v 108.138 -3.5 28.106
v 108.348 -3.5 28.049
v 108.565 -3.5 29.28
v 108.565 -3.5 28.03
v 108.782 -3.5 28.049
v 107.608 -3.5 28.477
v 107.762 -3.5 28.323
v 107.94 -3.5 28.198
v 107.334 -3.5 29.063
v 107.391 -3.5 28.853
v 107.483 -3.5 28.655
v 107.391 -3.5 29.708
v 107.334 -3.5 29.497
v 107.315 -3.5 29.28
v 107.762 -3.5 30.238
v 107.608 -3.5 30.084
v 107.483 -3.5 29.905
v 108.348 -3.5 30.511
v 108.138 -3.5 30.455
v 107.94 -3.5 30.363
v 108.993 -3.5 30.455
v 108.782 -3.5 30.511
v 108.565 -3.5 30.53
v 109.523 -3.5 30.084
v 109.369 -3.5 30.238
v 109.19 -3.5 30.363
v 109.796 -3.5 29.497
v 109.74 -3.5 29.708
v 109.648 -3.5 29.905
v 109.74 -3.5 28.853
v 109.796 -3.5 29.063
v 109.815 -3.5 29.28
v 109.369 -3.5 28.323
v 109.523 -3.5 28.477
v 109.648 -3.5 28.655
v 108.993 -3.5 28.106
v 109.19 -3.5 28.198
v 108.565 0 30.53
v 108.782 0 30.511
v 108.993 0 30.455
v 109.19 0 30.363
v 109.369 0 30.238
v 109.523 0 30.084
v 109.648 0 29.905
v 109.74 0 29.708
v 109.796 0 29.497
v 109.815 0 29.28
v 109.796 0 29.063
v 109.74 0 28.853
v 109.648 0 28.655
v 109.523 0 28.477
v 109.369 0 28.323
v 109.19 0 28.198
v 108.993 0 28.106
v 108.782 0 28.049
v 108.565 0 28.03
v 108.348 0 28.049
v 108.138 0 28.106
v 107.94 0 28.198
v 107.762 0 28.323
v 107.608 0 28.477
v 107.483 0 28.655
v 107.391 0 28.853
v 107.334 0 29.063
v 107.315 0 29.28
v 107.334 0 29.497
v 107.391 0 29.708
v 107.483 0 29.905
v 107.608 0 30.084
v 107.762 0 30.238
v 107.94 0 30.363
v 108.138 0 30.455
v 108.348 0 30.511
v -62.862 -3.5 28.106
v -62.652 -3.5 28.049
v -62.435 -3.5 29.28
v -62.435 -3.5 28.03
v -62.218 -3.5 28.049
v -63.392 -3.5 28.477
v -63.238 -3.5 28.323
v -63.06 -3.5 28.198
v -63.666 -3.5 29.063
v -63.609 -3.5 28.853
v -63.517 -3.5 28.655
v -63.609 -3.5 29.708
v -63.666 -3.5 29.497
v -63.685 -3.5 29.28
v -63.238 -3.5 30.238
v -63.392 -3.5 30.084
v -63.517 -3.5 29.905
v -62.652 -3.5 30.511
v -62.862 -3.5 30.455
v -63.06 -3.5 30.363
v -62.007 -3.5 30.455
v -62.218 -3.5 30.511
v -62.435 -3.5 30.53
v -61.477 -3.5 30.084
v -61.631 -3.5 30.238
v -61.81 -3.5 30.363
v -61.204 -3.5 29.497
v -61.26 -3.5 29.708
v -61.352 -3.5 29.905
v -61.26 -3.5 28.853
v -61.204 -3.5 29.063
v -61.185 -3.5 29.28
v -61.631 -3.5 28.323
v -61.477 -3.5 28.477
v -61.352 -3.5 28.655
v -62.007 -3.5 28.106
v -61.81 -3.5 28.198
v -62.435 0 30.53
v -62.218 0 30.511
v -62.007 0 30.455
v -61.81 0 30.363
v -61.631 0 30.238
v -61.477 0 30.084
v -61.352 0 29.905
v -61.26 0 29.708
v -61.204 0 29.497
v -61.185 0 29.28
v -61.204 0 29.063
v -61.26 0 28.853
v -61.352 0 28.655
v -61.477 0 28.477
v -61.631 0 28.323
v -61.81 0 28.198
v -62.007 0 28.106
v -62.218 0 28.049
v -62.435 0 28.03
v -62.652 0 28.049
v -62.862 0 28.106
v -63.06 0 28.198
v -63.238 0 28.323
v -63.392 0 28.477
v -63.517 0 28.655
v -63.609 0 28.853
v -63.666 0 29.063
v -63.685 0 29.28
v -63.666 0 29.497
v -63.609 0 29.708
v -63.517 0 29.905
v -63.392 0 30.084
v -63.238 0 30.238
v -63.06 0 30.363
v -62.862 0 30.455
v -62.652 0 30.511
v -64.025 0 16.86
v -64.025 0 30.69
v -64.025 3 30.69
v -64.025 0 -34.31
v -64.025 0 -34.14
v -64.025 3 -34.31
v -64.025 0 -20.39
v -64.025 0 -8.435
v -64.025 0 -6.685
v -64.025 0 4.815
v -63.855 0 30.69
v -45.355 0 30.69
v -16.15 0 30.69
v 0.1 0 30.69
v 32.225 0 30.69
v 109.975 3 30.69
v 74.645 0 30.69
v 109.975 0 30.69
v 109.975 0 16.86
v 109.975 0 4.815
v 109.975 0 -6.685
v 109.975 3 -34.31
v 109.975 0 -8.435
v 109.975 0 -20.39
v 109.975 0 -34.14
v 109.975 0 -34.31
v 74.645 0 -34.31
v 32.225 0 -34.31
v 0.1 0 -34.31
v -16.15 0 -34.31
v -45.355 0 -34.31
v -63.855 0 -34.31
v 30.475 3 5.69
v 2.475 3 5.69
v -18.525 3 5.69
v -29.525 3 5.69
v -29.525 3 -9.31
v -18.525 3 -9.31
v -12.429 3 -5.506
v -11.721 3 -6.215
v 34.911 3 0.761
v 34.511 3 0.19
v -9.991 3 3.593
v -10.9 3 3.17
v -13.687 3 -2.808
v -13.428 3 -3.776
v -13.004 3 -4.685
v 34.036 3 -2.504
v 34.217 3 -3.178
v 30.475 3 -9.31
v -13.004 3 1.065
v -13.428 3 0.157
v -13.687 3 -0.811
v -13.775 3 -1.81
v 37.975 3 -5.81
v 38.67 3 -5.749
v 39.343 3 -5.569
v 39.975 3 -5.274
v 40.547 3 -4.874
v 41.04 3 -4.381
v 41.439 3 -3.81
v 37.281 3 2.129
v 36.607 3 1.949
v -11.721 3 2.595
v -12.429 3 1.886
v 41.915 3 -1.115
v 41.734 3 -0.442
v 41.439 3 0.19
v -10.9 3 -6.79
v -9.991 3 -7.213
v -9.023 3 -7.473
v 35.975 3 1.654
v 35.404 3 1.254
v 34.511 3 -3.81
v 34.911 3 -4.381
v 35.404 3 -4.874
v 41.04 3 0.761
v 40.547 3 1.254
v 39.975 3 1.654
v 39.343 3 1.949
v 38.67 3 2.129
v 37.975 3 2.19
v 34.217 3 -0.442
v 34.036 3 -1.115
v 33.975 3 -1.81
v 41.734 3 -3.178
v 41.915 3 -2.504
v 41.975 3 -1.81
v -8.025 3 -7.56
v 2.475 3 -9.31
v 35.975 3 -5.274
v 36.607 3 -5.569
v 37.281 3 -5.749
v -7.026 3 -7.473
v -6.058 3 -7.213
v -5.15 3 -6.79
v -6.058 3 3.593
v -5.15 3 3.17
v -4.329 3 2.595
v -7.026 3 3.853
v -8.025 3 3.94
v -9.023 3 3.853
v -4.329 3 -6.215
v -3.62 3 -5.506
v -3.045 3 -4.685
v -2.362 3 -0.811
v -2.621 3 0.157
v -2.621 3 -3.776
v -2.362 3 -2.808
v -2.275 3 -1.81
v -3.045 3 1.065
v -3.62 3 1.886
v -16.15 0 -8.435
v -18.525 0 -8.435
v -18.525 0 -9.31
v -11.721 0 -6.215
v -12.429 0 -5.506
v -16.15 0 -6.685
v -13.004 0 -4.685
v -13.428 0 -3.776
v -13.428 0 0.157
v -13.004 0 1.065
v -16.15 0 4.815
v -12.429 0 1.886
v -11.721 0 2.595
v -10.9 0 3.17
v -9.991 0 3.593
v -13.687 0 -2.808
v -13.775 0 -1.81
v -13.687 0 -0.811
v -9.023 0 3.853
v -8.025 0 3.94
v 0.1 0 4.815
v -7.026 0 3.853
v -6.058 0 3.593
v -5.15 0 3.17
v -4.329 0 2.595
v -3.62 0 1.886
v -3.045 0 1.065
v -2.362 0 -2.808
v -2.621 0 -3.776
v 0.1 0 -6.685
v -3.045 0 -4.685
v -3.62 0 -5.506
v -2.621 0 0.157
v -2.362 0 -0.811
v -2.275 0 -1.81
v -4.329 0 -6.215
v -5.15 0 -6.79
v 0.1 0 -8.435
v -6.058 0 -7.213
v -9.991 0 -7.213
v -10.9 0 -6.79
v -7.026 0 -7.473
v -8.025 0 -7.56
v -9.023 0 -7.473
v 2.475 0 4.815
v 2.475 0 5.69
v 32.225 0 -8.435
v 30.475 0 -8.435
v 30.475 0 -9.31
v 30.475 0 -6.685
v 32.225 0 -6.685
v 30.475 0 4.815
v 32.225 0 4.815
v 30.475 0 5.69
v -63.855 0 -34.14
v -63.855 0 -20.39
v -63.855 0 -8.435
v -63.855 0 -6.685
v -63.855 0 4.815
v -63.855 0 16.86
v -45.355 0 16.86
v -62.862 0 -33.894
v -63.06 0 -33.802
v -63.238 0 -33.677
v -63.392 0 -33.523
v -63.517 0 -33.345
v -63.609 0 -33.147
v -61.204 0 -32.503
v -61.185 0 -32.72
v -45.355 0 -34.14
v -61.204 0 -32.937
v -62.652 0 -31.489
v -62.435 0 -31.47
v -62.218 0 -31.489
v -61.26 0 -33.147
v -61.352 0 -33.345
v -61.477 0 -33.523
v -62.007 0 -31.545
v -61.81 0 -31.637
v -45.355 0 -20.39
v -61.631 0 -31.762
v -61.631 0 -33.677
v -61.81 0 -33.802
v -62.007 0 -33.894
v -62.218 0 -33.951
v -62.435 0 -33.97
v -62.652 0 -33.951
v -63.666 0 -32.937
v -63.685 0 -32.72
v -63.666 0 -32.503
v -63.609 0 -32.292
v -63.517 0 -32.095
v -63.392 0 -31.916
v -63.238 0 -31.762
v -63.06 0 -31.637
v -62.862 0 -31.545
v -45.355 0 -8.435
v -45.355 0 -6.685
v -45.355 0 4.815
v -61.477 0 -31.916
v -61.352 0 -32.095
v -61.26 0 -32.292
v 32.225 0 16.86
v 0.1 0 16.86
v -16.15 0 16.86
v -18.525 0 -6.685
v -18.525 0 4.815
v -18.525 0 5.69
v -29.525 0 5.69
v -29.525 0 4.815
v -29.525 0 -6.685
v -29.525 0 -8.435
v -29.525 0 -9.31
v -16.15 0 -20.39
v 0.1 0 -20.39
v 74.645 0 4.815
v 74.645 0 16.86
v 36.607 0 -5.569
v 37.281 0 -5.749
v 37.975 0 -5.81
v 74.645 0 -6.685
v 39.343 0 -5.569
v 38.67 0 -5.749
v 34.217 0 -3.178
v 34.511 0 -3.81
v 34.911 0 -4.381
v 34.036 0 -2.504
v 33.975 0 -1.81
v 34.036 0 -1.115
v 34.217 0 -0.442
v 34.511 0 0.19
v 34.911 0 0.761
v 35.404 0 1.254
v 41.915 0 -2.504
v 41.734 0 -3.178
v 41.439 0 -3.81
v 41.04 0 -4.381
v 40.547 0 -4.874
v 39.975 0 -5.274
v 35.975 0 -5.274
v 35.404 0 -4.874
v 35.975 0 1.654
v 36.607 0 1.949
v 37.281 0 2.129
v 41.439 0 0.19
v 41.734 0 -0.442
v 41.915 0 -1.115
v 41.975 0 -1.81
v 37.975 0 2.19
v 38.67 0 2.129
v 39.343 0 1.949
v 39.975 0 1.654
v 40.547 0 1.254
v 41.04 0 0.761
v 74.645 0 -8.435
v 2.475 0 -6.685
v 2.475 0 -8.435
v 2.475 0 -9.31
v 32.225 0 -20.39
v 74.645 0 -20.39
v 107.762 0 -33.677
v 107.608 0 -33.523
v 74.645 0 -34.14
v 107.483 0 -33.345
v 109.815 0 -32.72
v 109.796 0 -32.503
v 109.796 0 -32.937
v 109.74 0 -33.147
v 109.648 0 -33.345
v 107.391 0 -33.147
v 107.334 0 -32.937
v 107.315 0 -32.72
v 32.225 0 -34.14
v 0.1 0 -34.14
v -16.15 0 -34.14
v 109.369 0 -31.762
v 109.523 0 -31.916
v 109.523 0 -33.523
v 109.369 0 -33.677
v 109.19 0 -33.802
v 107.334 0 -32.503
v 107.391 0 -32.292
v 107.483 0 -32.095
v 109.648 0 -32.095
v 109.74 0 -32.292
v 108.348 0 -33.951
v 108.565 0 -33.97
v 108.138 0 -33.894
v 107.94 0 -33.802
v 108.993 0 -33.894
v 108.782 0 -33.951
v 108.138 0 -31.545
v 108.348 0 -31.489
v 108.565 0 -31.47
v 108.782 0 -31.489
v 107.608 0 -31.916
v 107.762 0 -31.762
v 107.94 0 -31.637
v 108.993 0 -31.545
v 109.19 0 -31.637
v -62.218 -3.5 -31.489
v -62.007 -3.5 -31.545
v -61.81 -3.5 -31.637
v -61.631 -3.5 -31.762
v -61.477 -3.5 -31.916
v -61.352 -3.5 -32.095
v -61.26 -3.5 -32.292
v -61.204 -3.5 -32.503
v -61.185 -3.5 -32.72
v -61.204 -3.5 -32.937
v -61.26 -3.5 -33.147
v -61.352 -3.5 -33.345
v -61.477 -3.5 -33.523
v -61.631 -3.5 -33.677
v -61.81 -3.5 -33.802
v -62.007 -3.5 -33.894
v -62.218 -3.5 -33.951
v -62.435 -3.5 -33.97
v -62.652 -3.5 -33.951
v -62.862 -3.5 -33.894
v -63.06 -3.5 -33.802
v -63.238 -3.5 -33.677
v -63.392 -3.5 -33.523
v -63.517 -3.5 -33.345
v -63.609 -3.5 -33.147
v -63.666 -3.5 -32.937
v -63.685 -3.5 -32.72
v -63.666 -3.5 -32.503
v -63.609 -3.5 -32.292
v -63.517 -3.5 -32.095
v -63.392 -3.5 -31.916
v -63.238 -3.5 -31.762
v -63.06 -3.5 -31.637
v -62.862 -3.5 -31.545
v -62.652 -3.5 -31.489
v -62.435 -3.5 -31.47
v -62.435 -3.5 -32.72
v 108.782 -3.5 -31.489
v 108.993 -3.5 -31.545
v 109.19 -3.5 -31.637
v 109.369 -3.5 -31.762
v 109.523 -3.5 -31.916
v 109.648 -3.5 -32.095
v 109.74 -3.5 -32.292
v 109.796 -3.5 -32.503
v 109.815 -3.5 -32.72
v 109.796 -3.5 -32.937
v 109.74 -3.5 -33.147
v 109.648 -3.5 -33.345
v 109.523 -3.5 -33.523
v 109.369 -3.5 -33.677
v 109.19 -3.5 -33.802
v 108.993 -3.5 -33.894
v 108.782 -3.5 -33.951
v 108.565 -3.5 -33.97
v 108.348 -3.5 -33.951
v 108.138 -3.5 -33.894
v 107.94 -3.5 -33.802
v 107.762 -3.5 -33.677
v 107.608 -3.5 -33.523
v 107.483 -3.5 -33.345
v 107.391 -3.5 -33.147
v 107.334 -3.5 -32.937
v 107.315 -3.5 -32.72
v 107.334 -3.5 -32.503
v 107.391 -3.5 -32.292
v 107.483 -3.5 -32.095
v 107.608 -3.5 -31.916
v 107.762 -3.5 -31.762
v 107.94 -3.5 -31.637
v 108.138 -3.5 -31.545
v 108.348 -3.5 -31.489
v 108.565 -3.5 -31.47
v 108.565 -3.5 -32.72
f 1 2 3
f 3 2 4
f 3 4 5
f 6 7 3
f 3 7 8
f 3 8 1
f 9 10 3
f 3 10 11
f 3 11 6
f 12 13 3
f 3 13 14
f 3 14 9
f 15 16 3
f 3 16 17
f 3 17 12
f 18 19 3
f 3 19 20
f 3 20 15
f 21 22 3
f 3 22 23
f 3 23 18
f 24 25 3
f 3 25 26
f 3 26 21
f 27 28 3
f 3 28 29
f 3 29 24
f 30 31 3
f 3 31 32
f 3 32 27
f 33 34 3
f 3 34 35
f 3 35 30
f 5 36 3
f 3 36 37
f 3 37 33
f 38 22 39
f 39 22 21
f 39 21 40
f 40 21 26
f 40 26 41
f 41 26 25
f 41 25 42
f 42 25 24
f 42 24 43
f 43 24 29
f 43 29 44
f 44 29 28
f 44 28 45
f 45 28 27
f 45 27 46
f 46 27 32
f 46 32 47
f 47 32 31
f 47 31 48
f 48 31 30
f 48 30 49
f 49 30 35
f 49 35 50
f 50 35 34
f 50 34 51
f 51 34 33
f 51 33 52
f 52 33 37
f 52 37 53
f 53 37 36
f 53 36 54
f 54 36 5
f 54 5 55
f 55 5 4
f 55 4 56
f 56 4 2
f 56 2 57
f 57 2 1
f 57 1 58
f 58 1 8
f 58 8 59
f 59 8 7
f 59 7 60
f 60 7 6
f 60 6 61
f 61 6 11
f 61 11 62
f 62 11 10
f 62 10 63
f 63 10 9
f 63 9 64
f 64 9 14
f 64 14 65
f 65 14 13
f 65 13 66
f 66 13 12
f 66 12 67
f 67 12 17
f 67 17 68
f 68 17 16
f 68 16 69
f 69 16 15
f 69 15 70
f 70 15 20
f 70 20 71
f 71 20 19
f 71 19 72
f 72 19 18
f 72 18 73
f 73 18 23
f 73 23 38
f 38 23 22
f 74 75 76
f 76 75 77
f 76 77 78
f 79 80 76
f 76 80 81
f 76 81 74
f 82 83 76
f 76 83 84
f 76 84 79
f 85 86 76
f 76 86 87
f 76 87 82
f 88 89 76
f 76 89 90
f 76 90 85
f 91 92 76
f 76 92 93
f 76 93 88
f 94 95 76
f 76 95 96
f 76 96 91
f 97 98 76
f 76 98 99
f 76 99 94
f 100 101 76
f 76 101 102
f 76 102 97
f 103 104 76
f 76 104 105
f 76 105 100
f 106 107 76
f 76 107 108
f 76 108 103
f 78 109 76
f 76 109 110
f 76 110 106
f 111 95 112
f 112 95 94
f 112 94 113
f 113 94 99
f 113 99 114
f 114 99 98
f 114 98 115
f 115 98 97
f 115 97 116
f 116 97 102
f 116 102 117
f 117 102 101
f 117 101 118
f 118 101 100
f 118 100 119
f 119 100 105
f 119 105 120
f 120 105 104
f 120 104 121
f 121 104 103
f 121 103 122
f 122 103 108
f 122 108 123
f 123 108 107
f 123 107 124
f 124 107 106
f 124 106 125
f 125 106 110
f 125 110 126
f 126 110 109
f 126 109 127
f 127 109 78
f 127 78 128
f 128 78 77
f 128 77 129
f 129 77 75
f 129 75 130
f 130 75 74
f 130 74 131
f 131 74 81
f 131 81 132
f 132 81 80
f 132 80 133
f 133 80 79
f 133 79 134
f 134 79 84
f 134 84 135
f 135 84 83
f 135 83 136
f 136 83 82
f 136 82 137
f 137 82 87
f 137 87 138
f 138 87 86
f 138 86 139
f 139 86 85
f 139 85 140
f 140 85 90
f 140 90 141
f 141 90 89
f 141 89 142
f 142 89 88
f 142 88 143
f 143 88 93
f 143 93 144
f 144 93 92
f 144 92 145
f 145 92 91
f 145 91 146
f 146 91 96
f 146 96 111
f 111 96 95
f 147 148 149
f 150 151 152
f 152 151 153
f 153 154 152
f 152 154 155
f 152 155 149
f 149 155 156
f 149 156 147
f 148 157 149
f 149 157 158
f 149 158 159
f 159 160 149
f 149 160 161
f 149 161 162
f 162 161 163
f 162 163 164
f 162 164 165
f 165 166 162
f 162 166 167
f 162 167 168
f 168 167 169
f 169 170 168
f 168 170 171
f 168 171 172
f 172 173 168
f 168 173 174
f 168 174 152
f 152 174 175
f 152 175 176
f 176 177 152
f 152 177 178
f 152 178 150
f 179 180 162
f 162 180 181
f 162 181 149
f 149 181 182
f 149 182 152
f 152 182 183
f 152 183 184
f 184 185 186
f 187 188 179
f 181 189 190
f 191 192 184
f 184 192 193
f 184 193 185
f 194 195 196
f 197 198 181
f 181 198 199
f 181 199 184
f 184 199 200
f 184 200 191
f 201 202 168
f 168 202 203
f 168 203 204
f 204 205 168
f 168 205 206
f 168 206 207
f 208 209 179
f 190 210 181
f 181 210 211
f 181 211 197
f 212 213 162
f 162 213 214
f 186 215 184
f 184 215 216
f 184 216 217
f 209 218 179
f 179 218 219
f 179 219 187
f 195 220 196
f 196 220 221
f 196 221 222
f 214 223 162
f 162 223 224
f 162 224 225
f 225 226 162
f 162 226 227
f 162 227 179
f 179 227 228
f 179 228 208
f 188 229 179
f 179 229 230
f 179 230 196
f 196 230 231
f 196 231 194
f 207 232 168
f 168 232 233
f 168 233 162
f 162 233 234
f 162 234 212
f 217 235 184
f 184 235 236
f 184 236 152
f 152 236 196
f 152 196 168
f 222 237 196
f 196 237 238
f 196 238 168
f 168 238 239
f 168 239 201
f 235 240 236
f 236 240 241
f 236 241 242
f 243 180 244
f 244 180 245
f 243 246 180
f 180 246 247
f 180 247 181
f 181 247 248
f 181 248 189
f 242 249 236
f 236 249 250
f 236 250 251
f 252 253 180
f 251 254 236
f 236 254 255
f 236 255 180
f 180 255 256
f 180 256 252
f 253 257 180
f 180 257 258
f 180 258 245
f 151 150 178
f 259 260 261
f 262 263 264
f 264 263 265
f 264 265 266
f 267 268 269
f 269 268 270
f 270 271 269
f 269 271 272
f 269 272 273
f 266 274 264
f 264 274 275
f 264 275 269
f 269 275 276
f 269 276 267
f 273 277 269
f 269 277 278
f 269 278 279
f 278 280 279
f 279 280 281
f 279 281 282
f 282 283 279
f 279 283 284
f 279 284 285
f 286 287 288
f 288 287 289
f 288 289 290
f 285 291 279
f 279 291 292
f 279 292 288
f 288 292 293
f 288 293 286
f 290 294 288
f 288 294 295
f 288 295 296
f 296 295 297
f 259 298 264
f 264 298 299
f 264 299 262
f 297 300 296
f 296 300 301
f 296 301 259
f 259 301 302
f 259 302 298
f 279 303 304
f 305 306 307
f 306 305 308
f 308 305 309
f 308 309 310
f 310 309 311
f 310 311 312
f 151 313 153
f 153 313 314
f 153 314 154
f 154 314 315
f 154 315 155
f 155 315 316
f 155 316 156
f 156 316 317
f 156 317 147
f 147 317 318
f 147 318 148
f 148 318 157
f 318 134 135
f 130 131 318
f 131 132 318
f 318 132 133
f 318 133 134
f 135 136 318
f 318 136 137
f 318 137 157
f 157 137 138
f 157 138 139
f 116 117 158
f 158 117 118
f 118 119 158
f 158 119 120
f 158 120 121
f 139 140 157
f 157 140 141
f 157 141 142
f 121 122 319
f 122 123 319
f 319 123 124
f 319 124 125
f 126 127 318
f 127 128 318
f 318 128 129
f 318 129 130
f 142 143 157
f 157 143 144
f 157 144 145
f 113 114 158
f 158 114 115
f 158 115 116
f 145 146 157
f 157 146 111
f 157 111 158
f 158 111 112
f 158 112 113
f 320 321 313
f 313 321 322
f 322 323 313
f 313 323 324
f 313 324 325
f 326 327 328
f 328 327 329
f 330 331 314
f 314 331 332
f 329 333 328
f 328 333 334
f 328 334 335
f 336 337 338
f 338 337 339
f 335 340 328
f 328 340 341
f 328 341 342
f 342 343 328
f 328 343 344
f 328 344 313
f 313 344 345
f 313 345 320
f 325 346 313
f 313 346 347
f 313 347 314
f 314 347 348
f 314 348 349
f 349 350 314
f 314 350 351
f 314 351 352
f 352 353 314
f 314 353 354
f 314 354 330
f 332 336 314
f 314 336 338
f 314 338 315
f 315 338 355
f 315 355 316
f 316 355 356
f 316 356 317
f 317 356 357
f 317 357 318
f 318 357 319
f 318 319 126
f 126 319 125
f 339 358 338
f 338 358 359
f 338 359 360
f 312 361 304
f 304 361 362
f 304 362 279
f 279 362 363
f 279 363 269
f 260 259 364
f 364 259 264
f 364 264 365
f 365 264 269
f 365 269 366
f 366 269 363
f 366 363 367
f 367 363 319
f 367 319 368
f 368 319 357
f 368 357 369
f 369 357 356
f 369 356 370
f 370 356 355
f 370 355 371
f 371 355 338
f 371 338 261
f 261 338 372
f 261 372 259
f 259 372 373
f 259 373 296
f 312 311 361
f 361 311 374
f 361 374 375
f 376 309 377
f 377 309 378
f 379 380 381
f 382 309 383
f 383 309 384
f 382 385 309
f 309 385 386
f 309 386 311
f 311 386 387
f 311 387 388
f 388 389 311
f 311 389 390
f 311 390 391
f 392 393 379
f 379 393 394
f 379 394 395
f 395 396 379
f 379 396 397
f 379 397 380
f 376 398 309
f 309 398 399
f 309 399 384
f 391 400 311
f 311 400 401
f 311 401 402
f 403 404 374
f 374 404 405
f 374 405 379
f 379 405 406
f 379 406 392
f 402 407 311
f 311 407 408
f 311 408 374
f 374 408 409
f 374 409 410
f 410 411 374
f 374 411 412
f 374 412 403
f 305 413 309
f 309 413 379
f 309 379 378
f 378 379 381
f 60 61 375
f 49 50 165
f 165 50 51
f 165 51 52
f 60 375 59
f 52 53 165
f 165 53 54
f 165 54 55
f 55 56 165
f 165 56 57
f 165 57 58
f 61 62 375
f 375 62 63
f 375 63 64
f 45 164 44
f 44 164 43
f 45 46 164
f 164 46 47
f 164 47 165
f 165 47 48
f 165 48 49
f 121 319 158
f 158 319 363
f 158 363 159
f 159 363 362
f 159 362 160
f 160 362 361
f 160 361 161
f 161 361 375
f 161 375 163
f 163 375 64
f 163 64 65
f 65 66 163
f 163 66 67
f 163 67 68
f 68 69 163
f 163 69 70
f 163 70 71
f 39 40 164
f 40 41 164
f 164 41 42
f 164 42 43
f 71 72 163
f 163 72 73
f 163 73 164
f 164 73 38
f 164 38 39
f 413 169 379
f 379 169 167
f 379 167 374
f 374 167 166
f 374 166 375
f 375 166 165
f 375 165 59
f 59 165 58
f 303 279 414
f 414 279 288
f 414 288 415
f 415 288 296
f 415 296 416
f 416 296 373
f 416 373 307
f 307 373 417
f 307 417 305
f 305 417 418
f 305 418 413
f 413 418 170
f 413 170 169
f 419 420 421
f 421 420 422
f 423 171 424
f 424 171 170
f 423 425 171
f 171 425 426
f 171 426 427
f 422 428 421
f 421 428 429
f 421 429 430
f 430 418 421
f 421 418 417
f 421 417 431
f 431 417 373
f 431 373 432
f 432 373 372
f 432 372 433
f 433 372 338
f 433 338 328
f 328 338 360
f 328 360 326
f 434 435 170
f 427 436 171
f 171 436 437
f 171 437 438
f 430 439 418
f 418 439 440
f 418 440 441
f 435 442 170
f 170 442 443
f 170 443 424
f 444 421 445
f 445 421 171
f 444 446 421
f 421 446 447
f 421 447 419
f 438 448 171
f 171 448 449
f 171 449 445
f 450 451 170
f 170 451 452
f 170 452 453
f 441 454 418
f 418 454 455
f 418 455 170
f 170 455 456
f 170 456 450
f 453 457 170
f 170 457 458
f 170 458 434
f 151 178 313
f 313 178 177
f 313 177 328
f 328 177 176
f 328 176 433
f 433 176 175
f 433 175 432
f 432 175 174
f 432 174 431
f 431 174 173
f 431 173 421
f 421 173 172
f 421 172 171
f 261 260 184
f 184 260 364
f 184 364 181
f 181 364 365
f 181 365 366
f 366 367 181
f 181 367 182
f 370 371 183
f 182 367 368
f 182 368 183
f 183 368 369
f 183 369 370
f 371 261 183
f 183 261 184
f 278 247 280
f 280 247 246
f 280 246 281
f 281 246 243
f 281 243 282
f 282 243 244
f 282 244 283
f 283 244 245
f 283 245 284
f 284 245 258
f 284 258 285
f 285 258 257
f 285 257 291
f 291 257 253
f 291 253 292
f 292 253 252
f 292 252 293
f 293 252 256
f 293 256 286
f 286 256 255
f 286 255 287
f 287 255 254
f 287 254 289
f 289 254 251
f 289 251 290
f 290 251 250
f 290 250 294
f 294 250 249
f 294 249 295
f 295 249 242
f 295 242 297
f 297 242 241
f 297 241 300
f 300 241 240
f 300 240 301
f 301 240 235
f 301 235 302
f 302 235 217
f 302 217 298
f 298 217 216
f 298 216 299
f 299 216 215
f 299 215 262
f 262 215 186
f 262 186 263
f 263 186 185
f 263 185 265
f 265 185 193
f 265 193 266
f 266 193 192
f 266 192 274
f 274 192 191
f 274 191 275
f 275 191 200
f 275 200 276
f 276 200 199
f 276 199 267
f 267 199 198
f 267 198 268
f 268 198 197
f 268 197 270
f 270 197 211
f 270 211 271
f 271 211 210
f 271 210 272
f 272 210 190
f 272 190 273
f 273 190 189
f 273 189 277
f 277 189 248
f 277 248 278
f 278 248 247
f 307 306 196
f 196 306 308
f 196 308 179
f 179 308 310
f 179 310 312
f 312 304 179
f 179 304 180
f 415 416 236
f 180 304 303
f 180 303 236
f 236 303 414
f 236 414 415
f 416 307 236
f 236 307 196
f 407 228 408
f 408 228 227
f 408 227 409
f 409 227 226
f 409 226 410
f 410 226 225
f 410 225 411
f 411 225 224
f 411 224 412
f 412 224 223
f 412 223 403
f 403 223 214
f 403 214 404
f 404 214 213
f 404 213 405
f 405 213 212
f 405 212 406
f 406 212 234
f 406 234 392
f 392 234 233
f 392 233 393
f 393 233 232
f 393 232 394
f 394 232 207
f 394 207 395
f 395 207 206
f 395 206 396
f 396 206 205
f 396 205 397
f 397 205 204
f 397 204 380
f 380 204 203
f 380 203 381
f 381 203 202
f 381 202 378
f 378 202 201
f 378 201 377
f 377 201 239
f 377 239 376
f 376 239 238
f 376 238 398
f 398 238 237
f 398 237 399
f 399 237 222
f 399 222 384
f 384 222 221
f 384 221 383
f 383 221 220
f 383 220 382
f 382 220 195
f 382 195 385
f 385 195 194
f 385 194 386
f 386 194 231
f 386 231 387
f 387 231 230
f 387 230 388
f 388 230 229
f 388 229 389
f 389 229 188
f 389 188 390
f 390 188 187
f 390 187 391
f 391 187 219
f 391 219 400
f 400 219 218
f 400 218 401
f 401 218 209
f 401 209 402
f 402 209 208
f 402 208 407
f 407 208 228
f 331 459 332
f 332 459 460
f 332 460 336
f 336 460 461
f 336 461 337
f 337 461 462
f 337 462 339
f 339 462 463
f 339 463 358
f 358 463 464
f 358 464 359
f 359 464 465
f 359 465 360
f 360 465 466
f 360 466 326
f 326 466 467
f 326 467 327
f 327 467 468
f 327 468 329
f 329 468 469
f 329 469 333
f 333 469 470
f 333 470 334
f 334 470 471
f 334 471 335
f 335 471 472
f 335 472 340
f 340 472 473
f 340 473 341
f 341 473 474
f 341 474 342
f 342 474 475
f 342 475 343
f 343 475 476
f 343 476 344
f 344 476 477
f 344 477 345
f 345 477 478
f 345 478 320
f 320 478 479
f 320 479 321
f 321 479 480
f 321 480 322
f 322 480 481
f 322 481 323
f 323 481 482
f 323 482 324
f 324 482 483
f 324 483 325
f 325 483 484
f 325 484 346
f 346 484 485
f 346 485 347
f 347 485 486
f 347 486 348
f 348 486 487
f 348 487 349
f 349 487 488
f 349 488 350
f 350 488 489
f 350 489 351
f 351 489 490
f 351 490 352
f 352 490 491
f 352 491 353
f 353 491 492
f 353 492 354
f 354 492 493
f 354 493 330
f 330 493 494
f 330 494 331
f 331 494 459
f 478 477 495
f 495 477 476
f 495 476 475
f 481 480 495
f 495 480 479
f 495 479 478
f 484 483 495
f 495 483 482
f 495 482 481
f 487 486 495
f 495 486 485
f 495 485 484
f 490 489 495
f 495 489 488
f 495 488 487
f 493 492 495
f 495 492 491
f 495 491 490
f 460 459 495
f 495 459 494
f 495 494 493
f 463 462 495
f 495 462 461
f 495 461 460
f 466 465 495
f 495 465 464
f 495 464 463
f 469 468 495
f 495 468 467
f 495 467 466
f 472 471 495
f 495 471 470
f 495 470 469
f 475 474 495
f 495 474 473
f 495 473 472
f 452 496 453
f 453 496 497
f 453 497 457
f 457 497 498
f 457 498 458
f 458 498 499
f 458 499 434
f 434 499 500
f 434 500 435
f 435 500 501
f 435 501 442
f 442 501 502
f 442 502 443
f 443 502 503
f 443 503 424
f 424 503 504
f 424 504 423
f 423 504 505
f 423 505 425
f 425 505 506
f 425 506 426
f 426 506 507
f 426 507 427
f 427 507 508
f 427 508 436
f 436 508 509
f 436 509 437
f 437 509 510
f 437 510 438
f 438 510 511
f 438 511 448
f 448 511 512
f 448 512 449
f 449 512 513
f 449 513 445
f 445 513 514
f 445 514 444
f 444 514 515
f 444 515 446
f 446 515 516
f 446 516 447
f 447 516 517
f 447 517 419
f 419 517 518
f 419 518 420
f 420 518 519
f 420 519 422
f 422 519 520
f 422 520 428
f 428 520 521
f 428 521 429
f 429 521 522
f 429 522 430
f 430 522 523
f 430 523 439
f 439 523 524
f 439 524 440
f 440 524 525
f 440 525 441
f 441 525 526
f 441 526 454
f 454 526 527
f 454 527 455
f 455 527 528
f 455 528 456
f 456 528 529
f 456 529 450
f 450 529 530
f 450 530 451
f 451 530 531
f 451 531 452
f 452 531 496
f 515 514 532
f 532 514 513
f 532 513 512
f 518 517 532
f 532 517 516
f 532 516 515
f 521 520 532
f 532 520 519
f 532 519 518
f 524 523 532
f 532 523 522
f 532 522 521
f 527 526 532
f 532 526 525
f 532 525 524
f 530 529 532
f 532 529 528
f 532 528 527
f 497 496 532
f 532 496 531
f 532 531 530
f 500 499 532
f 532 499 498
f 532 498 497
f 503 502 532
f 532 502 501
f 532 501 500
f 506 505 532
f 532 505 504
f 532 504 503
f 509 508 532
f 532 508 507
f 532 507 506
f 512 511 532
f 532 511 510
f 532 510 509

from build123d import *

# Parameters (mm, degrees)
SKETCH1_W            = 174
SKETCH1_H            = 65
BOSS_EXTRUDE1_DEPTH  = 3
SKETCH2_R            = 4
SKETCH2_R_2          = 5.75
SKETCH2_W            = 28
SKETCH2_H            = 15
SKETCH2_W_2          = 11
CUT_EXTRUDE1_DEPTH   = 3
SKETCH3_R            = 1.25
BOSS_EXTRUDE2_DEPTH  = 3.5
LPATTERN1_COUNT      = 2
LPATTERN1_PITCH      = 171
LPATTERN1_COUNT_DIR2 = 2
LPATTERN1_PITCH_DIR2 = 62


with BuildPart() as part:
    # Sketch1 → Boss-Extrude1 (new body)
    with BuildSketch(Plane(origin=(0, 0, 0), x_dir=(1, 0, 0), z_dir=(0, 1, 0))):
        with Locations((22.975352113, 1.809859155)):
            Rectangle(SKETCH1_W, SKETCH1_H)
    extrude(amount=BOSS_EXTRUDE1_DEPTH)

    # Sketch2 → Cut-Extrude1 (cut)
    with BuildSketch(Plane(origin=(0, 3, 0), x_dir=(1, 0, 0), z_dir=(0, 1, 0))):
        with Locations(Location((37.975352113, 1.809859155, 0), (0, 0, 270))):
            Circle(SKETCH2_R)
        with Locations(Location((-8.024647887, 1.809859155, 0), (0, 0, 270))):
            Circle(SKETCH2_R_2)
        with Locations((16.475352113, 1.809859155)):
            Rectangle(SKETCH2_W, SKETCH2_H)
        with Locations((-24.024647887, 1.809859155)):
            Rectangle(SKETCH2_W_2, SKETCH2_H)
    extrude(amount=-CUT_EXTRUDE1_DEPTH, mode=Mode.SUBTRACT)

    # Sketch3 → Boss-Extrude2 (add)
    with BuildSketch(Plane.XZ):
        with Locations(Location((-62.434647887, -32.719859155, 0), (0, 0, 90))):
            Circle(SKETCH3_R)
    boss_extrude2 = extrude(amount=BOSS_EXTRUDE2_DEPTH)

    # LPattern1: Boss-Extrude2 2 × 2
    with Locations(*[(i * LPATTERN1_PITCH, 0, j * LPATTERN1_PITCH_DIR2) for i in range(LPATTERN1_COUNT) for j in range(LPATTERN1_COUNT_DIR2) if (i, j) != (0, 0)]):
        add(boss_extrude2)


solid = part.part
